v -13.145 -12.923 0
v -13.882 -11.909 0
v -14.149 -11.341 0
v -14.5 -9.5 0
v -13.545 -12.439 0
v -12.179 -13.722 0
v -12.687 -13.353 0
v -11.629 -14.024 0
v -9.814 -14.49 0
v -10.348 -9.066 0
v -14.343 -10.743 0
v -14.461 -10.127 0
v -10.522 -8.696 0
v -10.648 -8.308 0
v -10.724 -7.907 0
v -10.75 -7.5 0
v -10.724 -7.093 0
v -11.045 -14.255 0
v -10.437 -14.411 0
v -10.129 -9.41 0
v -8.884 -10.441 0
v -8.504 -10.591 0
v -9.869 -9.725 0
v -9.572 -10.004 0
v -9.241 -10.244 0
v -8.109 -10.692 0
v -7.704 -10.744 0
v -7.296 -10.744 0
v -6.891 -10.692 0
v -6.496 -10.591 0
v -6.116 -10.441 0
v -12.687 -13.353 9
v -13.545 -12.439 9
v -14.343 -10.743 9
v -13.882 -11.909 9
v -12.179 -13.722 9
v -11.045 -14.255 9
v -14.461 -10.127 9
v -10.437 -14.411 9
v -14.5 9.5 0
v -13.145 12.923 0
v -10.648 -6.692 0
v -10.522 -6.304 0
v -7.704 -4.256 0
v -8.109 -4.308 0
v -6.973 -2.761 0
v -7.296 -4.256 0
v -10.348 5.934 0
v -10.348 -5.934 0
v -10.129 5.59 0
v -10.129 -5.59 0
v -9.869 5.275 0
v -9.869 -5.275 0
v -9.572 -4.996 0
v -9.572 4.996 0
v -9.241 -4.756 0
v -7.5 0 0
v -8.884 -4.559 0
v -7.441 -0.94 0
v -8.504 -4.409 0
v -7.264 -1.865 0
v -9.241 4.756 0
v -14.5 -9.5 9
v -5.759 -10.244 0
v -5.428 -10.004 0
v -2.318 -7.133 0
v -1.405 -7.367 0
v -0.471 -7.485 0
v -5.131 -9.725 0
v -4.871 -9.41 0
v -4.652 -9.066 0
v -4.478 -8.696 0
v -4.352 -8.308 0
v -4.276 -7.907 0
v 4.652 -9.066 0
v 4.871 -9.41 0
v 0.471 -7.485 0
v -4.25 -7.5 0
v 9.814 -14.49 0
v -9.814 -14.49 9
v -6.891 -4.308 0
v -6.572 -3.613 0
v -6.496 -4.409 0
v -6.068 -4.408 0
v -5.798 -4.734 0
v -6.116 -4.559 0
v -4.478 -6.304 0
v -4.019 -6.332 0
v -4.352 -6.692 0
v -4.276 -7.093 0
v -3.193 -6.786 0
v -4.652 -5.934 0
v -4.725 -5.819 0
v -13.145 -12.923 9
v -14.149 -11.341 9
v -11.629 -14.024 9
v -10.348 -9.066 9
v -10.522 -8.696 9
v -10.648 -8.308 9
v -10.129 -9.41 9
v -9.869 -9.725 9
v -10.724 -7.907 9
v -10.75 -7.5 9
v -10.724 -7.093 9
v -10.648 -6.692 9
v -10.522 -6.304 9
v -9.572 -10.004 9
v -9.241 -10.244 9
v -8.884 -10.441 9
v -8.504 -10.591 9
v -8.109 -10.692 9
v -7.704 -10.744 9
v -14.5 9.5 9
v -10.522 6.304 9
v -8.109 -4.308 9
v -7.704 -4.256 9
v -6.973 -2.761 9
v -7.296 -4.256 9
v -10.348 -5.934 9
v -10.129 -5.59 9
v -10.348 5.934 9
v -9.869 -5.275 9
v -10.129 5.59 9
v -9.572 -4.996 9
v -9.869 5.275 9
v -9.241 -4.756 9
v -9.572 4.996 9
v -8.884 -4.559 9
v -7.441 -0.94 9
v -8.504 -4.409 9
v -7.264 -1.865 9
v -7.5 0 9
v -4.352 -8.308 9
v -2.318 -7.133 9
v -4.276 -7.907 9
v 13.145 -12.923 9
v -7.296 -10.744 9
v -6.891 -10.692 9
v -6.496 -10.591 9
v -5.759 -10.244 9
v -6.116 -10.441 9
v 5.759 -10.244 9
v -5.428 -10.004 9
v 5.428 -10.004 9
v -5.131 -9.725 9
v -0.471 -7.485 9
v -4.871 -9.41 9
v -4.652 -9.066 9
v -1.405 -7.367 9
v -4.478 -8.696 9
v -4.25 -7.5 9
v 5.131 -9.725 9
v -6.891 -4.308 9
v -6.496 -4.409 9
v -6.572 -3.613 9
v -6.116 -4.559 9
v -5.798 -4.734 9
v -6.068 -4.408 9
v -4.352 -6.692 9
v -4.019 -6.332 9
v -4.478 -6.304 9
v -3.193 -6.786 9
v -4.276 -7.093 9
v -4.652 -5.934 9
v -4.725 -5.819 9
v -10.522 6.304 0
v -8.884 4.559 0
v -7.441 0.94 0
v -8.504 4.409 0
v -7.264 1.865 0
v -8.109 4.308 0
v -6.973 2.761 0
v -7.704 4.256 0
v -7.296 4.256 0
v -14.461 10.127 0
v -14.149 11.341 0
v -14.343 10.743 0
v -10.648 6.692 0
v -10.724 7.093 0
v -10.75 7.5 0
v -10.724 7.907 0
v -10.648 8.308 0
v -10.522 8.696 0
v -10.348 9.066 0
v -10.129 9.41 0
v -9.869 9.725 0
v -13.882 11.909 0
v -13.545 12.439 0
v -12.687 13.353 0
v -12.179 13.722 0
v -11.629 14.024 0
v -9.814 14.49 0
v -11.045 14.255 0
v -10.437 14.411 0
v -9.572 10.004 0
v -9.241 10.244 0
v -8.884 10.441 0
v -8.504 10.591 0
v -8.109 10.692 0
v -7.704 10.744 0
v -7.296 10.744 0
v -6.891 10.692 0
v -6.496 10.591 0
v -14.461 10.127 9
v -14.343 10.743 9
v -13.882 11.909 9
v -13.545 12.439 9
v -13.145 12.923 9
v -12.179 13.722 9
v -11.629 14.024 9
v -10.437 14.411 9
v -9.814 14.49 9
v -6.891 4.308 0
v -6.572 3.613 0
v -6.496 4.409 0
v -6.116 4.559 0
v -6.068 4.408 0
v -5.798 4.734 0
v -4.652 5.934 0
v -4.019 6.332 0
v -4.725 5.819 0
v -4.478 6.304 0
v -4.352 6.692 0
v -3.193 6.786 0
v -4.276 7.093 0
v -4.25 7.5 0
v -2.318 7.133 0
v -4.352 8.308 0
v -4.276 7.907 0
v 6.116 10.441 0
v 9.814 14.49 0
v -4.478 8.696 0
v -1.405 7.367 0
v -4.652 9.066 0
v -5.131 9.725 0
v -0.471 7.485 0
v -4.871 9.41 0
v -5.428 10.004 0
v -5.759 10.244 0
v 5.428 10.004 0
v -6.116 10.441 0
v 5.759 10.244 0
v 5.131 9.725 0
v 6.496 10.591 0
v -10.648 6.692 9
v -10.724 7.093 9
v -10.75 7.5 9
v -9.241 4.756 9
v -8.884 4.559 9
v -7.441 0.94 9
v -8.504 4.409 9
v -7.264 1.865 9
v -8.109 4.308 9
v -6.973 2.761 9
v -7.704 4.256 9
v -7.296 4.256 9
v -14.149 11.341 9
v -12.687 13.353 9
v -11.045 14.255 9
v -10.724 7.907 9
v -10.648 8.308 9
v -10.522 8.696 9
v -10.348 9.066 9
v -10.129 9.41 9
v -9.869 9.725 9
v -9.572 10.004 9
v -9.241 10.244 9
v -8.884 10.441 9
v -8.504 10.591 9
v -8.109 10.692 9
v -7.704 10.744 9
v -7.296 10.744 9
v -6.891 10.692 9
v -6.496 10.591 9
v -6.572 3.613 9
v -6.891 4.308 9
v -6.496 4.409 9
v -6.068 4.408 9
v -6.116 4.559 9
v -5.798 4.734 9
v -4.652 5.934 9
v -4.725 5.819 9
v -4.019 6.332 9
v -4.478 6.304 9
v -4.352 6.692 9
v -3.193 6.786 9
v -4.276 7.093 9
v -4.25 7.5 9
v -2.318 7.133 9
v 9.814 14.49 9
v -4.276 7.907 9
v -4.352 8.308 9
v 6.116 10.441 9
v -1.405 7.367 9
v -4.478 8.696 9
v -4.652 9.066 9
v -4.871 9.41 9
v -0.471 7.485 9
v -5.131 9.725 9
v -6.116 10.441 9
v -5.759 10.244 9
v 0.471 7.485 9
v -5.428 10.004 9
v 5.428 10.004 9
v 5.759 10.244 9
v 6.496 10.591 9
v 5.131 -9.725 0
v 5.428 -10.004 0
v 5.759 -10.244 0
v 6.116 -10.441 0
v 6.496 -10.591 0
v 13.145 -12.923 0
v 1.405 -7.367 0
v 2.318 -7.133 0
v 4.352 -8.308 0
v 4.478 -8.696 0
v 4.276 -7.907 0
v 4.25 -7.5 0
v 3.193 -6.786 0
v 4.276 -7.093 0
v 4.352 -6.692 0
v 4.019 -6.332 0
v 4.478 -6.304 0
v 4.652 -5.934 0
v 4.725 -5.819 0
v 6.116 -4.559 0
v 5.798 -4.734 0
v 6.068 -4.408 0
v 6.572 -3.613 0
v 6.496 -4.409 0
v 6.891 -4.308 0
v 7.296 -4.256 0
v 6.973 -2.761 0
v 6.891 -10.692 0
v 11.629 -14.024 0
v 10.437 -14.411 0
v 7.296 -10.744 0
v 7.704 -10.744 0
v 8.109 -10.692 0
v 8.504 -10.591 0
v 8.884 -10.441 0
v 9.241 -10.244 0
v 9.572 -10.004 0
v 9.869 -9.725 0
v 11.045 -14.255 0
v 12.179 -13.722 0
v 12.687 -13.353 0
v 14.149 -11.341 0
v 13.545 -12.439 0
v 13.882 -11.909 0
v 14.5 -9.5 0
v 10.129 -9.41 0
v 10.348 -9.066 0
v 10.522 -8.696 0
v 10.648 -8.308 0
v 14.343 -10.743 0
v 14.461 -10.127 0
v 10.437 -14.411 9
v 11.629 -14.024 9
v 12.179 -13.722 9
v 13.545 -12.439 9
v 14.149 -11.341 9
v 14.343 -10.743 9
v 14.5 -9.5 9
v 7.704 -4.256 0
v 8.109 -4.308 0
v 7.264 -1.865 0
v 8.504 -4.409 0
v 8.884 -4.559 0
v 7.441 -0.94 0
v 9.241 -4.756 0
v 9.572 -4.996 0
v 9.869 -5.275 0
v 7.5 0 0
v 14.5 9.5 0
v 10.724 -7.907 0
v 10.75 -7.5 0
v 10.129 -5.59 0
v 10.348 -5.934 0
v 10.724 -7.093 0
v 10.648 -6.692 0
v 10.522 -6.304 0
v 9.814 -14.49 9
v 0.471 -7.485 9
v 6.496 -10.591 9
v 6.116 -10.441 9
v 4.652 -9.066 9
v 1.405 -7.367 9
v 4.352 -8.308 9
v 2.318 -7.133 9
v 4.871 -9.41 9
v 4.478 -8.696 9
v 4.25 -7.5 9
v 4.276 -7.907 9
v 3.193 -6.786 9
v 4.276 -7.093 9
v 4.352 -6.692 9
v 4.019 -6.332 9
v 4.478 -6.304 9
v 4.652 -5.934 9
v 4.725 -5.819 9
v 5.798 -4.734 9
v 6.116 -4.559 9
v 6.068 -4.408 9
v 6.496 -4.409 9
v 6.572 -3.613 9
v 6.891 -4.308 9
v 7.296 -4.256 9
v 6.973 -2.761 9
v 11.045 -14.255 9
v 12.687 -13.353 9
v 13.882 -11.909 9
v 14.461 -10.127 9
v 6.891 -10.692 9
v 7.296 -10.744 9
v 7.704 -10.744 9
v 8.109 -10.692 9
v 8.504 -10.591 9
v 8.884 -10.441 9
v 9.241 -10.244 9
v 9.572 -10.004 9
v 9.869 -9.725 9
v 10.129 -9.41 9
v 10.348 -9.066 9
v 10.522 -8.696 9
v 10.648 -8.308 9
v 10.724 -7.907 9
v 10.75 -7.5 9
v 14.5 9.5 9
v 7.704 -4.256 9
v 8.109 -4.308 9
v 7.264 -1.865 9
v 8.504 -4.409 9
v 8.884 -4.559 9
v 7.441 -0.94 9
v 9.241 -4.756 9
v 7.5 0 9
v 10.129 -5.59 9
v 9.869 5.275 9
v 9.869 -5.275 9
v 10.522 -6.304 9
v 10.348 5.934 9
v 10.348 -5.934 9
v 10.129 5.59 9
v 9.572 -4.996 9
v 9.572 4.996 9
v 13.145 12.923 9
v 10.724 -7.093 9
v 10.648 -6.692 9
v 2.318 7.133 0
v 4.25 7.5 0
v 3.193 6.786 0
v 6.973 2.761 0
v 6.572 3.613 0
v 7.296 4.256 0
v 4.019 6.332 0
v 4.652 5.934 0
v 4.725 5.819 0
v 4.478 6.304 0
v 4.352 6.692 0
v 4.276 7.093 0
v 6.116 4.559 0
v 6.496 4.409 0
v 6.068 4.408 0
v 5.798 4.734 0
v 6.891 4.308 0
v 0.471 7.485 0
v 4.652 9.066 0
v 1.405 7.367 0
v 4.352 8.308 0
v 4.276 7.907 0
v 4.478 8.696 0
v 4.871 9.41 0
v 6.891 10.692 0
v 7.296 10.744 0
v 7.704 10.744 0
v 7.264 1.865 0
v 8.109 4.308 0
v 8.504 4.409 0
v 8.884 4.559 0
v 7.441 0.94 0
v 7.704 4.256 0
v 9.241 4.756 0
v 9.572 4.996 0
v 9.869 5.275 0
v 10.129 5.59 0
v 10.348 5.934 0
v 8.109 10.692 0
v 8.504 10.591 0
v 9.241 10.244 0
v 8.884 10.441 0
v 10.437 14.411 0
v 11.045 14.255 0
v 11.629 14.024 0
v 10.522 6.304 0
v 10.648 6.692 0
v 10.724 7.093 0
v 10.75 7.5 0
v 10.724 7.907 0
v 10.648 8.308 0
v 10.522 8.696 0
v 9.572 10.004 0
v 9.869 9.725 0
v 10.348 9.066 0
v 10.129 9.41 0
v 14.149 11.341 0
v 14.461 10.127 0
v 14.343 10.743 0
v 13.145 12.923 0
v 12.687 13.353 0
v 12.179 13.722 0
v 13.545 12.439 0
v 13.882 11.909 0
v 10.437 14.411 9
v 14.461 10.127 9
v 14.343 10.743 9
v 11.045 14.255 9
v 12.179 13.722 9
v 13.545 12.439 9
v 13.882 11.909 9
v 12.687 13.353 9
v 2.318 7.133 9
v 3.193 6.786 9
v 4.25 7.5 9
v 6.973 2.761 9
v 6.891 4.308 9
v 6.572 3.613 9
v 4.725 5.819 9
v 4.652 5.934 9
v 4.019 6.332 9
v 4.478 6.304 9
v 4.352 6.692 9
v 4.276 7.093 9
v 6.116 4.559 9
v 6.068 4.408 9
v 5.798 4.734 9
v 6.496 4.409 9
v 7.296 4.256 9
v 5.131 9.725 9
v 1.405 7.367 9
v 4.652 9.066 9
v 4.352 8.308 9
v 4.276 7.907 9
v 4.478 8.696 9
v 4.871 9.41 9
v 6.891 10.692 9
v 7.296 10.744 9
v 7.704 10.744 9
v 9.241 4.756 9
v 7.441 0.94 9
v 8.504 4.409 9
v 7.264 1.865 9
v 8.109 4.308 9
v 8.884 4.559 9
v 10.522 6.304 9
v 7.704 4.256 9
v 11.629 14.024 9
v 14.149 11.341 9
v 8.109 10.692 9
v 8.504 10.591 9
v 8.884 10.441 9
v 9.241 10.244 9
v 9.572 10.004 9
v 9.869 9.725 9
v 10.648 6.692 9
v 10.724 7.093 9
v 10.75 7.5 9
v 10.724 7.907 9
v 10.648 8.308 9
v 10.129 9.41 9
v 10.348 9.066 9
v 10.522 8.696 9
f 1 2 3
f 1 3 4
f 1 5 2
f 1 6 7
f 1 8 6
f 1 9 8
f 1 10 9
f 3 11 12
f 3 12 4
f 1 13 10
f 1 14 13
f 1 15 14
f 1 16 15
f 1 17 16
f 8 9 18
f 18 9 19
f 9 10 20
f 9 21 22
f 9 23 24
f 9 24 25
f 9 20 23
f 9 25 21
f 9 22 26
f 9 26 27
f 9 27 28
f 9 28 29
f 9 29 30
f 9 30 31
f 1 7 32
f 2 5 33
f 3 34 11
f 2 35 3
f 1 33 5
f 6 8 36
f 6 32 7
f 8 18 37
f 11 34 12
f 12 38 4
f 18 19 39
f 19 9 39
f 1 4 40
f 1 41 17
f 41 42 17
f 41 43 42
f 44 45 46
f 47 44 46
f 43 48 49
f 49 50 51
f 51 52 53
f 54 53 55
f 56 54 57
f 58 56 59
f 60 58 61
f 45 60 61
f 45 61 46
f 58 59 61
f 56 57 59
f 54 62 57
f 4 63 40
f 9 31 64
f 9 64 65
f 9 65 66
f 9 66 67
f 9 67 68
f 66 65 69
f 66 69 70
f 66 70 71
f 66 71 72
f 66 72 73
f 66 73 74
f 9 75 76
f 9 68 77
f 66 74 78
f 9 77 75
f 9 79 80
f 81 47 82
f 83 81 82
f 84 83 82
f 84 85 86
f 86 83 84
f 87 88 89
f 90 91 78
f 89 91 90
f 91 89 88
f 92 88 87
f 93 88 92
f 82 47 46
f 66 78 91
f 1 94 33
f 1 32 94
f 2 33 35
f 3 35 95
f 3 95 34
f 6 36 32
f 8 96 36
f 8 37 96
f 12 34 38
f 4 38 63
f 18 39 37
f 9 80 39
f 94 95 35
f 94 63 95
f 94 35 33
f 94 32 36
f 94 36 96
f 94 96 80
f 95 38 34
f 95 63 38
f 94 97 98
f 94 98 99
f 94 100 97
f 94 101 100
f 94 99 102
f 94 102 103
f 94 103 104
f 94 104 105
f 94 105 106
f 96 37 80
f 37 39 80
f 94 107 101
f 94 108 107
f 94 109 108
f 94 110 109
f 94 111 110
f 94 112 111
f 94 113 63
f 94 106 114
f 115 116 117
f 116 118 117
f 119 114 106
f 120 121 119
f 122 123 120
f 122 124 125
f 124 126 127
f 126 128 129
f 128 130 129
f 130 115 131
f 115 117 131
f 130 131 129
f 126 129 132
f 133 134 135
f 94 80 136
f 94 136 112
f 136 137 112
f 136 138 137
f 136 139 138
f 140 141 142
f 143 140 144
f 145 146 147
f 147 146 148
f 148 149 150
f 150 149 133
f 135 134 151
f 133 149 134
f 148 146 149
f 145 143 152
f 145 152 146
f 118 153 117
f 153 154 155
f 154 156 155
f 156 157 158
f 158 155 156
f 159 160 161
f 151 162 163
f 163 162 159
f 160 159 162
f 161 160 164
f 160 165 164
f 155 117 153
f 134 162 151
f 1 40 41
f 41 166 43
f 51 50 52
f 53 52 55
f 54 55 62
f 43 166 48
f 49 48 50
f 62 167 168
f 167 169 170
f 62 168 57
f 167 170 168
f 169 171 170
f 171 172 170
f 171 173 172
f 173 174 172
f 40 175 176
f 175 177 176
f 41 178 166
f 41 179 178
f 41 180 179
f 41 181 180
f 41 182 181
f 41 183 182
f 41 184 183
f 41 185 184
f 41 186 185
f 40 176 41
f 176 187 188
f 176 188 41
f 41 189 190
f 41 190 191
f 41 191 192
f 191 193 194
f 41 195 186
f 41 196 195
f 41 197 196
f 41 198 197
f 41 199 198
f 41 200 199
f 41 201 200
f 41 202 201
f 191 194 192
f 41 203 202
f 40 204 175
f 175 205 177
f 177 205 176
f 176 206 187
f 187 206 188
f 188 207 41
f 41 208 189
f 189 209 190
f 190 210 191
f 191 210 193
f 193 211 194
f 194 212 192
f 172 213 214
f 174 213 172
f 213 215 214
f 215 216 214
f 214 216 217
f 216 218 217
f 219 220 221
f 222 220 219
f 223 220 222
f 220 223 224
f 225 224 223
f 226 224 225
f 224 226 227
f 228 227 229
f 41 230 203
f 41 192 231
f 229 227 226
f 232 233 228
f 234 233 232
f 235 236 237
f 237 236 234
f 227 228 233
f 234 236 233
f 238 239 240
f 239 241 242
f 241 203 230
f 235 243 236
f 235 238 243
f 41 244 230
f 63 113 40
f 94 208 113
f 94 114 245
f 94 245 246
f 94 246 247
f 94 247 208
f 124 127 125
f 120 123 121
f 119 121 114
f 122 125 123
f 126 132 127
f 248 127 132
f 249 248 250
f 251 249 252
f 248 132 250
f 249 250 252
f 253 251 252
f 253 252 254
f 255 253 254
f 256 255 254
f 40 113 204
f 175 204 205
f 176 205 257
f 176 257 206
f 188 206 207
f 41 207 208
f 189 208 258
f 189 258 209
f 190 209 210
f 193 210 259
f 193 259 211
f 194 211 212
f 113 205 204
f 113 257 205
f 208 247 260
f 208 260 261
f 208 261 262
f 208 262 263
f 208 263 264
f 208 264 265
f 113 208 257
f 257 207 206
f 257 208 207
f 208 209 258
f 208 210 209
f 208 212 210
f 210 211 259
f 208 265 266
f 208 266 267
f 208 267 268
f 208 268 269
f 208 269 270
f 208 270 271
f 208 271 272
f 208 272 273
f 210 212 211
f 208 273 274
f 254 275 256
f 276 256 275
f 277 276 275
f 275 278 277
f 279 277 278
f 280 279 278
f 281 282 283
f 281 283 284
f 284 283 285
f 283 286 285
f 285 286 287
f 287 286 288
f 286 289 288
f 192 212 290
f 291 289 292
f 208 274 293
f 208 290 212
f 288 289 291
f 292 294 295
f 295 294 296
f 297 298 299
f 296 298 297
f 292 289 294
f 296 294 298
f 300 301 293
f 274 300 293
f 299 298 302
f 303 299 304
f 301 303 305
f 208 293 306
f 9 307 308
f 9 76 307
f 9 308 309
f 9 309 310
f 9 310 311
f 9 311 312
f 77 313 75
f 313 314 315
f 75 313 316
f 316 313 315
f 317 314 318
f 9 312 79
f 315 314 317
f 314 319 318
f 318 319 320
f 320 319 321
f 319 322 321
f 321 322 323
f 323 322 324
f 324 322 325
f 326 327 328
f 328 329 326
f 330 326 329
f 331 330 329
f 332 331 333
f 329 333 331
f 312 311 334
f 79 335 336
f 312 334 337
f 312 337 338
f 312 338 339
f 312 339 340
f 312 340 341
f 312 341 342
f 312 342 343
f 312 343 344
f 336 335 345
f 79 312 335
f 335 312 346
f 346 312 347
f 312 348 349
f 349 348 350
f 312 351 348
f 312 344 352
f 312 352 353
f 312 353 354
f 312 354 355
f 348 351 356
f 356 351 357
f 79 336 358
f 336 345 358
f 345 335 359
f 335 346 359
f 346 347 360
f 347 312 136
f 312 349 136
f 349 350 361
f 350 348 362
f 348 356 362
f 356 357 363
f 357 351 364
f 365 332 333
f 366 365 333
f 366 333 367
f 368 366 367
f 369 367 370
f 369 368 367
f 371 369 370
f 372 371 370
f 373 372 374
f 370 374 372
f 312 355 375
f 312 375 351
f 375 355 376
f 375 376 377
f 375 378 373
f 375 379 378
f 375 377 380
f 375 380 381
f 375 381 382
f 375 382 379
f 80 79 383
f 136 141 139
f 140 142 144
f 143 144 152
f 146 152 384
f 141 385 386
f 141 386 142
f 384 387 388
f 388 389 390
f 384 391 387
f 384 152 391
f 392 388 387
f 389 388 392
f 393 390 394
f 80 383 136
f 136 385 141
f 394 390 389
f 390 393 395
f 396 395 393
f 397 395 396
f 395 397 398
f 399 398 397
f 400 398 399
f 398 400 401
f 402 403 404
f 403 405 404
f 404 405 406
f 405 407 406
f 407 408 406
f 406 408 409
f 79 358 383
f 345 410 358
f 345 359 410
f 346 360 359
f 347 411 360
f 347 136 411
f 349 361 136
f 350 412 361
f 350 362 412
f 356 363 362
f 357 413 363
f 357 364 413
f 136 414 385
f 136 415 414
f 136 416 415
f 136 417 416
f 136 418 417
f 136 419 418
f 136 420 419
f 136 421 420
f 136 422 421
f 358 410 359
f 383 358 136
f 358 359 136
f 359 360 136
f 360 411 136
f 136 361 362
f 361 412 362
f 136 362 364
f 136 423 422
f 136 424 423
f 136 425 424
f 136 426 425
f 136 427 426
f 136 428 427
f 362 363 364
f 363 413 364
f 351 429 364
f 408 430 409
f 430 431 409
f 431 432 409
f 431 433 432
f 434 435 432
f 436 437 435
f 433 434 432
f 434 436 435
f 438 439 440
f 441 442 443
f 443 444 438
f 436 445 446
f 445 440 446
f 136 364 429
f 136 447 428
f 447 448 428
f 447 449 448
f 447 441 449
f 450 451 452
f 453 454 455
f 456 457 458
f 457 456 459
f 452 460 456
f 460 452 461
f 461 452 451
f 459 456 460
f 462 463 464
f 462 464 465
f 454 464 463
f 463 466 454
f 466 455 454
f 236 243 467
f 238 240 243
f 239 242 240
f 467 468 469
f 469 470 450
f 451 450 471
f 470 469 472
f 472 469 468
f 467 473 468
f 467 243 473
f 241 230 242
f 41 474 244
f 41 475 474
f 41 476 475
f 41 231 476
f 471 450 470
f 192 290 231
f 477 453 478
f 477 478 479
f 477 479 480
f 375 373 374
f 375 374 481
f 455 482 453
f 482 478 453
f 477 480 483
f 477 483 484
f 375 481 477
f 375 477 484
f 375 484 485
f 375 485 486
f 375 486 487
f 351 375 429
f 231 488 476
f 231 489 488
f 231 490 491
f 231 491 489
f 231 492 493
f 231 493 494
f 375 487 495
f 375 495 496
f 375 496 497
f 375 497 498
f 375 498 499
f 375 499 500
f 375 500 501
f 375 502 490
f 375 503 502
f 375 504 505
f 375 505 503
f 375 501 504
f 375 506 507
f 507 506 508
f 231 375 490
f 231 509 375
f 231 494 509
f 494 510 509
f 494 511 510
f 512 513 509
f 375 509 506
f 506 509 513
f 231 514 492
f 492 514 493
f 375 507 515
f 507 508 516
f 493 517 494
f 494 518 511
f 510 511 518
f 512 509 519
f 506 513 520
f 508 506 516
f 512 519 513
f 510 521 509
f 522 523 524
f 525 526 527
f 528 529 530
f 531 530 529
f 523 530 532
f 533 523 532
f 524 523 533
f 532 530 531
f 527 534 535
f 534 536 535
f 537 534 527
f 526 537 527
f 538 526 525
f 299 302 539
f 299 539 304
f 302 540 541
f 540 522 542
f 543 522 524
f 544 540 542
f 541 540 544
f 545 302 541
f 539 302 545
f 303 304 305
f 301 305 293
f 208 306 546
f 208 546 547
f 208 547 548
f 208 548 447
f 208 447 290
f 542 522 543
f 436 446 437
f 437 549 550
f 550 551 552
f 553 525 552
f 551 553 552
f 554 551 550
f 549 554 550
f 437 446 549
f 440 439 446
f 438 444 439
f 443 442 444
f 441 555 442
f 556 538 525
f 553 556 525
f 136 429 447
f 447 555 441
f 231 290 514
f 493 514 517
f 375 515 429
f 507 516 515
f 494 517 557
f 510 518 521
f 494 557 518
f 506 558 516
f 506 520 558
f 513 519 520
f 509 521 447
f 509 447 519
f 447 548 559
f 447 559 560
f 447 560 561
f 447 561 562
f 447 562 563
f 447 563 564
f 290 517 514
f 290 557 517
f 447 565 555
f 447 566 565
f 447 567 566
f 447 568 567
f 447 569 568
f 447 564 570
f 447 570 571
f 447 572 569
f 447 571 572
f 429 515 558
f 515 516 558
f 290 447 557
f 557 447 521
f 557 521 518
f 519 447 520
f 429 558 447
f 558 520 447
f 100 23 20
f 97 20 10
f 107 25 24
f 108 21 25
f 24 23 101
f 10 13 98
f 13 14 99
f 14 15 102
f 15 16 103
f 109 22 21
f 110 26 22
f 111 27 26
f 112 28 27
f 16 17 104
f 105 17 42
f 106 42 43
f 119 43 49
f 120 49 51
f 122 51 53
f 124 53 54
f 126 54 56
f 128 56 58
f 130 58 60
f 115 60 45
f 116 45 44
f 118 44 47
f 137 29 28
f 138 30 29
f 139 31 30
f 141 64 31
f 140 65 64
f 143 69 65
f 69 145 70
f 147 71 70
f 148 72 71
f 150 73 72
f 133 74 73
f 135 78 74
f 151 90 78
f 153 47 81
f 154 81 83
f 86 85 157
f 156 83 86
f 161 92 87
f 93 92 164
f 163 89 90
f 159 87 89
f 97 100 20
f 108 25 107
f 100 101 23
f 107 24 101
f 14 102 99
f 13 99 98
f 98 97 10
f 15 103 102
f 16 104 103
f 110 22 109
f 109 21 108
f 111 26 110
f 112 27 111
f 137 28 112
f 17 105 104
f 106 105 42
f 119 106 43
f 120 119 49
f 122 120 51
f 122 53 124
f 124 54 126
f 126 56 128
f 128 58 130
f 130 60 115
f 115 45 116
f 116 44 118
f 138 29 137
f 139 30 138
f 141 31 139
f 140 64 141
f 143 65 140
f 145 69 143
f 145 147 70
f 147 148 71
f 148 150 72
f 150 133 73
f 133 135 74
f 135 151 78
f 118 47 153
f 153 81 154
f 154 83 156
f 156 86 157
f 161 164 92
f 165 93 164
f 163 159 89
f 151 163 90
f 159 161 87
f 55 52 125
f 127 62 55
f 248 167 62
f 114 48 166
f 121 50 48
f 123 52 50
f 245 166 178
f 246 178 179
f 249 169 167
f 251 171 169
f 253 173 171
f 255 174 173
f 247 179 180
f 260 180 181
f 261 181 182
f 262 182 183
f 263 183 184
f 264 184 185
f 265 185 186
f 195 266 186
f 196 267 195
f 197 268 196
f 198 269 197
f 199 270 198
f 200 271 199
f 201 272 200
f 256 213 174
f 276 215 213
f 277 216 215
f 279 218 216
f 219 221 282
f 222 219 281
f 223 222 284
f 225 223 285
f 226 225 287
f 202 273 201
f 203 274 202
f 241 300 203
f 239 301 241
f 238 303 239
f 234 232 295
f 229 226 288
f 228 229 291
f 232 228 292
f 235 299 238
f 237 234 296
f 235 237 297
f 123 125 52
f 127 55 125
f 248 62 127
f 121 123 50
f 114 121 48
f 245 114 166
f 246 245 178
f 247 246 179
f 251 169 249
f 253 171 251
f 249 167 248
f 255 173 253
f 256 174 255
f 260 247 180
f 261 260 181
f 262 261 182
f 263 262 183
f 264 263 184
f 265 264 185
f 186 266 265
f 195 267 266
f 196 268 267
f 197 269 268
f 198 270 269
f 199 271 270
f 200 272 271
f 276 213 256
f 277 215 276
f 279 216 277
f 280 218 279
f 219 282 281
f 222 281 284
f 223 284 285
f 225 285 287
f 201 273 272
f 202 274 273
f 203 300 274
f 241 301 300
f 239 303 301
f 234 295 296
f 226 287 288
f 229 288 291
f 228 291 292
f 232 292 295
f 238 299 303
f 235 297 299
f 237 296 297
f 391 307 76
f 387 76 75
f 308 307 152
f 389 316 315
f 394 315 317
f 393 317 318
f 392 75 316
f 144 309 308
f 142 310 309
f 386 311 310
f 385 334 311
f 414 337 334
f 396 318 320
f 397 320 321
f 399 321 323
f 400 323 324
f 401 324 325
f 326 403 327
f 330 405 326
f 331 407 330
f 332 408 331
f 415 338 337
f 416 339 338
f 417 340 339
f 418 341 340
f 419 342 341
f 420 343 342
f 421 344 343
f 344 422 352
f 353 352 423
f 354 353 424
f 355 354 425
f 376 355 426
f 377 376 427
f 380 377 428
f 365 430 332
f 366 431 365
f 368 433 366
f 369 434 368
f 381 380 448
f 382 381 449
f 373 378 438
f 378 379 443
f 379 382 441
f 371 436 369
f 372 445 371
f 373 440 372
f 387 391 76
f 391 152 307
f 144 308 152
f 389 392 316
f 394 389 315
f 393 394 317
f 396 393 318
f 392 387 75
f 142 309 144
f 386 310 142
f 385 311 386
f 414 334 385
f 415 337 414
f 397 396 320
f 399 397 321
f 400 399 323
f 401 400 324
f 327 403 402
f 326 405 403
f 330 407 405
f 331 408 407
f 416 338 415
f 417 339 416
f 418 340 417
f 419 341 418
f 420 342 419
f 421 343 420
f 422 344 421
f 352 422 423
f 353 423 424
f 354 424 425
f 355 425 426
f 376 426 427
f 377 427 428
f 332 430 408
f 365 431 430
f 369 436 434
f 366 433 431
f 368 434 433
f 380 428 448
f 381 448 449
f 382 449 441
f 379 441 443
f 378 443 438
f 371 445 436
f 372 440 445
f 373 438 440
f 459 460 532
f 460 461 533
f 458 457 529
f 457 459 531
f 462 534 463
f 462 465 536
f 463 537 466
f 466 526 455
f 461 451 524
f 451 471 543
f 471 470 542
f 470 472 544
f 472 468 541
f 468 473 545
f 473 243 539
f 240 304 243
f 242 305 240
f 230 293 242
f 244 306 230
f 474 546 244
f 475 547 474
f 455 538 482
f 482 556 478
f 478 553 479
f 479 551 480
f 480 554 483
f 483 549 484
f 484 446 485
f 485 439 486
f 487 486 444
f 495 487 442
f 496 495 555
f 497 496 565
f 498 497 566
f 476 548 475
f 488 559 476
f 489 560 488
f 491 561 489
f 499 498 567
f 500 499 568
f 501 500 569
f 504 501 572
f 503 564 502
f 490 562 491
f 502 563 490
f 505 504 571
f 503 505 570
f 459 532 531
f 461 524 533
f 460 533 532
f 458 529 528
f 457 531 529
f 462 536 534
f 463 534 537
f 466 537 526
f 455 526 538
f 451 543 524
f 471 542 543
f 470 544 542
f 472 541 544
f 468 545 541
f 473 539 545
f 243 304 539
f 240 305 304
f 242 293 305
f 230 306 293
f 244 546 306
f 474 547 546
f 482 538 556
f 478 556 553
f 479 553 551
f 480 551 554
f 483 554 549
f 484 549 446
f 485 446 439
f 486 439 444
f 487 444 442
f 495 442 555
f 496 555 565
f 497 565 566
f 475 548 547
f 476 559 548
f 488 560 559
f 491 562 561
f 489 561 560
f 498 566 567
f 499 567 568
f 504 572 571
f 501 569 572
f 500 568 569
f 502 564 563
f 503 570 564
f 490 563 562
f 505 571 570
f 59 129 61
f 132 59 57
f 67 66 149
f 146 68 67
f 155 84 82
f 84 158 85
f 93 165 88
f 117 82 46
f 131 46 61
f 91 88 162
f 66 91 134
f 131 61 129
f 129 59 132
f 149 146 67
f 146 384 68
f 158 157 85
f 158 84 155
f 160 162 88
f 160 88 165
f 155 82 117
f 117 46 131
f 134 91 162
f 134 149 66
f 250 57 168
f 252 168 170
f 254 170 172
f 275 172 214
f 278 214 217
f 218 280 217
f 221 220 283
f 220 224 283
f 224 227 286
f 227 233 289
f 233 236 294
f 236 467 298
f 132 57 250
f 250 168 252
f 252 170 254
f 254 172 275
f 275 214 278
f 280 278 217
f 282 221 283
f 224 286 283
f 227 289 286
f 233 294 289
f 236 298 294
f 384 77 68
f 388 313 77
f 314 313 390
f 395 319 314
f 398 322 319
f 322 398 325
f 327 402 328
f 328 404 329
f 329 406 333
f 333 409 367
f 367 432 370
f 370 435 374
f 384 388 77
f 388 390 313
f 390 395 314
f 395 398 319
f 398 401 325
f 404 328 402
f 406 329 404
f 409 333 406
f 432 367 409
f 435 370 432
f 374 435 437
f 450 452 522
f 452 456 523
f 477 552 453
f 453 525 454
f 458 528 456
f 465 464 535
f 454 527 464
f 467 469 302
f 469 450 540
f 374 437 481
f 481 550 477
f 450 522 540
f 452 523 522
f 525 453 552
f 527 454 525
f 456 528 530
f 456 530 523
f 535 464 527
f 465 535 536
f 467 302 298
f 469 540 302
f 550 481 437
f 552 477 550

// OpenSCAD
$fn = 50;

difference() {
	union() {
		hull() {
			translate(v = [-9.5, 9.5, 0]) {
				cylinder(h = 9, r = 5);
			}
			translate(v = [9.5, 9.5, 0]) {
				cylinder(h = 9, r = 5);
			}
			translate(v = [-9.5, -9.5, 0]) {
				cylinder(h = 9, r = 5);
			}
			translate(v = [9.5, -9.5, 0]) {
				cylinder(h = 9, r = 5);
			}
		}
	}
	union() {
		translate(v = [-7.5, -7.5, -100.0]) {
			cylinder(h = 200, r = 3.25);
		}
		translate(v = [-7.5, 7.5, -100.0]) {
			cylinder(h = 200, r = 3.25);
		}
		translate(v = [7.5, -7.5, -100.0]) {
			cylinder(h = 200, r = 3.25);
		}
		translate(v = [7.5, 7.5, -100.0]) {
			cylinder(h = 200, r = 3.25);
		}
		translate(v = [-7.5, -7.5, -100.0]) {
			cylinder(h = 200, r = 1.8);
		}
		translate(v = [-7.5, 7.5, -100.0]) {
			cylinder(h = 200, r = 1.8);
		}
		translate(v = [7.5, -7.5, -100.0]) {
			cylinder(h = 200, r = 1.8);
		}
		translate(v = [7.5, 7.5, -100.0]) {
			cylinder(h = 200, r = 1.8);
		}
		cylinder(h = 9, r = 7.5);
	}
}
